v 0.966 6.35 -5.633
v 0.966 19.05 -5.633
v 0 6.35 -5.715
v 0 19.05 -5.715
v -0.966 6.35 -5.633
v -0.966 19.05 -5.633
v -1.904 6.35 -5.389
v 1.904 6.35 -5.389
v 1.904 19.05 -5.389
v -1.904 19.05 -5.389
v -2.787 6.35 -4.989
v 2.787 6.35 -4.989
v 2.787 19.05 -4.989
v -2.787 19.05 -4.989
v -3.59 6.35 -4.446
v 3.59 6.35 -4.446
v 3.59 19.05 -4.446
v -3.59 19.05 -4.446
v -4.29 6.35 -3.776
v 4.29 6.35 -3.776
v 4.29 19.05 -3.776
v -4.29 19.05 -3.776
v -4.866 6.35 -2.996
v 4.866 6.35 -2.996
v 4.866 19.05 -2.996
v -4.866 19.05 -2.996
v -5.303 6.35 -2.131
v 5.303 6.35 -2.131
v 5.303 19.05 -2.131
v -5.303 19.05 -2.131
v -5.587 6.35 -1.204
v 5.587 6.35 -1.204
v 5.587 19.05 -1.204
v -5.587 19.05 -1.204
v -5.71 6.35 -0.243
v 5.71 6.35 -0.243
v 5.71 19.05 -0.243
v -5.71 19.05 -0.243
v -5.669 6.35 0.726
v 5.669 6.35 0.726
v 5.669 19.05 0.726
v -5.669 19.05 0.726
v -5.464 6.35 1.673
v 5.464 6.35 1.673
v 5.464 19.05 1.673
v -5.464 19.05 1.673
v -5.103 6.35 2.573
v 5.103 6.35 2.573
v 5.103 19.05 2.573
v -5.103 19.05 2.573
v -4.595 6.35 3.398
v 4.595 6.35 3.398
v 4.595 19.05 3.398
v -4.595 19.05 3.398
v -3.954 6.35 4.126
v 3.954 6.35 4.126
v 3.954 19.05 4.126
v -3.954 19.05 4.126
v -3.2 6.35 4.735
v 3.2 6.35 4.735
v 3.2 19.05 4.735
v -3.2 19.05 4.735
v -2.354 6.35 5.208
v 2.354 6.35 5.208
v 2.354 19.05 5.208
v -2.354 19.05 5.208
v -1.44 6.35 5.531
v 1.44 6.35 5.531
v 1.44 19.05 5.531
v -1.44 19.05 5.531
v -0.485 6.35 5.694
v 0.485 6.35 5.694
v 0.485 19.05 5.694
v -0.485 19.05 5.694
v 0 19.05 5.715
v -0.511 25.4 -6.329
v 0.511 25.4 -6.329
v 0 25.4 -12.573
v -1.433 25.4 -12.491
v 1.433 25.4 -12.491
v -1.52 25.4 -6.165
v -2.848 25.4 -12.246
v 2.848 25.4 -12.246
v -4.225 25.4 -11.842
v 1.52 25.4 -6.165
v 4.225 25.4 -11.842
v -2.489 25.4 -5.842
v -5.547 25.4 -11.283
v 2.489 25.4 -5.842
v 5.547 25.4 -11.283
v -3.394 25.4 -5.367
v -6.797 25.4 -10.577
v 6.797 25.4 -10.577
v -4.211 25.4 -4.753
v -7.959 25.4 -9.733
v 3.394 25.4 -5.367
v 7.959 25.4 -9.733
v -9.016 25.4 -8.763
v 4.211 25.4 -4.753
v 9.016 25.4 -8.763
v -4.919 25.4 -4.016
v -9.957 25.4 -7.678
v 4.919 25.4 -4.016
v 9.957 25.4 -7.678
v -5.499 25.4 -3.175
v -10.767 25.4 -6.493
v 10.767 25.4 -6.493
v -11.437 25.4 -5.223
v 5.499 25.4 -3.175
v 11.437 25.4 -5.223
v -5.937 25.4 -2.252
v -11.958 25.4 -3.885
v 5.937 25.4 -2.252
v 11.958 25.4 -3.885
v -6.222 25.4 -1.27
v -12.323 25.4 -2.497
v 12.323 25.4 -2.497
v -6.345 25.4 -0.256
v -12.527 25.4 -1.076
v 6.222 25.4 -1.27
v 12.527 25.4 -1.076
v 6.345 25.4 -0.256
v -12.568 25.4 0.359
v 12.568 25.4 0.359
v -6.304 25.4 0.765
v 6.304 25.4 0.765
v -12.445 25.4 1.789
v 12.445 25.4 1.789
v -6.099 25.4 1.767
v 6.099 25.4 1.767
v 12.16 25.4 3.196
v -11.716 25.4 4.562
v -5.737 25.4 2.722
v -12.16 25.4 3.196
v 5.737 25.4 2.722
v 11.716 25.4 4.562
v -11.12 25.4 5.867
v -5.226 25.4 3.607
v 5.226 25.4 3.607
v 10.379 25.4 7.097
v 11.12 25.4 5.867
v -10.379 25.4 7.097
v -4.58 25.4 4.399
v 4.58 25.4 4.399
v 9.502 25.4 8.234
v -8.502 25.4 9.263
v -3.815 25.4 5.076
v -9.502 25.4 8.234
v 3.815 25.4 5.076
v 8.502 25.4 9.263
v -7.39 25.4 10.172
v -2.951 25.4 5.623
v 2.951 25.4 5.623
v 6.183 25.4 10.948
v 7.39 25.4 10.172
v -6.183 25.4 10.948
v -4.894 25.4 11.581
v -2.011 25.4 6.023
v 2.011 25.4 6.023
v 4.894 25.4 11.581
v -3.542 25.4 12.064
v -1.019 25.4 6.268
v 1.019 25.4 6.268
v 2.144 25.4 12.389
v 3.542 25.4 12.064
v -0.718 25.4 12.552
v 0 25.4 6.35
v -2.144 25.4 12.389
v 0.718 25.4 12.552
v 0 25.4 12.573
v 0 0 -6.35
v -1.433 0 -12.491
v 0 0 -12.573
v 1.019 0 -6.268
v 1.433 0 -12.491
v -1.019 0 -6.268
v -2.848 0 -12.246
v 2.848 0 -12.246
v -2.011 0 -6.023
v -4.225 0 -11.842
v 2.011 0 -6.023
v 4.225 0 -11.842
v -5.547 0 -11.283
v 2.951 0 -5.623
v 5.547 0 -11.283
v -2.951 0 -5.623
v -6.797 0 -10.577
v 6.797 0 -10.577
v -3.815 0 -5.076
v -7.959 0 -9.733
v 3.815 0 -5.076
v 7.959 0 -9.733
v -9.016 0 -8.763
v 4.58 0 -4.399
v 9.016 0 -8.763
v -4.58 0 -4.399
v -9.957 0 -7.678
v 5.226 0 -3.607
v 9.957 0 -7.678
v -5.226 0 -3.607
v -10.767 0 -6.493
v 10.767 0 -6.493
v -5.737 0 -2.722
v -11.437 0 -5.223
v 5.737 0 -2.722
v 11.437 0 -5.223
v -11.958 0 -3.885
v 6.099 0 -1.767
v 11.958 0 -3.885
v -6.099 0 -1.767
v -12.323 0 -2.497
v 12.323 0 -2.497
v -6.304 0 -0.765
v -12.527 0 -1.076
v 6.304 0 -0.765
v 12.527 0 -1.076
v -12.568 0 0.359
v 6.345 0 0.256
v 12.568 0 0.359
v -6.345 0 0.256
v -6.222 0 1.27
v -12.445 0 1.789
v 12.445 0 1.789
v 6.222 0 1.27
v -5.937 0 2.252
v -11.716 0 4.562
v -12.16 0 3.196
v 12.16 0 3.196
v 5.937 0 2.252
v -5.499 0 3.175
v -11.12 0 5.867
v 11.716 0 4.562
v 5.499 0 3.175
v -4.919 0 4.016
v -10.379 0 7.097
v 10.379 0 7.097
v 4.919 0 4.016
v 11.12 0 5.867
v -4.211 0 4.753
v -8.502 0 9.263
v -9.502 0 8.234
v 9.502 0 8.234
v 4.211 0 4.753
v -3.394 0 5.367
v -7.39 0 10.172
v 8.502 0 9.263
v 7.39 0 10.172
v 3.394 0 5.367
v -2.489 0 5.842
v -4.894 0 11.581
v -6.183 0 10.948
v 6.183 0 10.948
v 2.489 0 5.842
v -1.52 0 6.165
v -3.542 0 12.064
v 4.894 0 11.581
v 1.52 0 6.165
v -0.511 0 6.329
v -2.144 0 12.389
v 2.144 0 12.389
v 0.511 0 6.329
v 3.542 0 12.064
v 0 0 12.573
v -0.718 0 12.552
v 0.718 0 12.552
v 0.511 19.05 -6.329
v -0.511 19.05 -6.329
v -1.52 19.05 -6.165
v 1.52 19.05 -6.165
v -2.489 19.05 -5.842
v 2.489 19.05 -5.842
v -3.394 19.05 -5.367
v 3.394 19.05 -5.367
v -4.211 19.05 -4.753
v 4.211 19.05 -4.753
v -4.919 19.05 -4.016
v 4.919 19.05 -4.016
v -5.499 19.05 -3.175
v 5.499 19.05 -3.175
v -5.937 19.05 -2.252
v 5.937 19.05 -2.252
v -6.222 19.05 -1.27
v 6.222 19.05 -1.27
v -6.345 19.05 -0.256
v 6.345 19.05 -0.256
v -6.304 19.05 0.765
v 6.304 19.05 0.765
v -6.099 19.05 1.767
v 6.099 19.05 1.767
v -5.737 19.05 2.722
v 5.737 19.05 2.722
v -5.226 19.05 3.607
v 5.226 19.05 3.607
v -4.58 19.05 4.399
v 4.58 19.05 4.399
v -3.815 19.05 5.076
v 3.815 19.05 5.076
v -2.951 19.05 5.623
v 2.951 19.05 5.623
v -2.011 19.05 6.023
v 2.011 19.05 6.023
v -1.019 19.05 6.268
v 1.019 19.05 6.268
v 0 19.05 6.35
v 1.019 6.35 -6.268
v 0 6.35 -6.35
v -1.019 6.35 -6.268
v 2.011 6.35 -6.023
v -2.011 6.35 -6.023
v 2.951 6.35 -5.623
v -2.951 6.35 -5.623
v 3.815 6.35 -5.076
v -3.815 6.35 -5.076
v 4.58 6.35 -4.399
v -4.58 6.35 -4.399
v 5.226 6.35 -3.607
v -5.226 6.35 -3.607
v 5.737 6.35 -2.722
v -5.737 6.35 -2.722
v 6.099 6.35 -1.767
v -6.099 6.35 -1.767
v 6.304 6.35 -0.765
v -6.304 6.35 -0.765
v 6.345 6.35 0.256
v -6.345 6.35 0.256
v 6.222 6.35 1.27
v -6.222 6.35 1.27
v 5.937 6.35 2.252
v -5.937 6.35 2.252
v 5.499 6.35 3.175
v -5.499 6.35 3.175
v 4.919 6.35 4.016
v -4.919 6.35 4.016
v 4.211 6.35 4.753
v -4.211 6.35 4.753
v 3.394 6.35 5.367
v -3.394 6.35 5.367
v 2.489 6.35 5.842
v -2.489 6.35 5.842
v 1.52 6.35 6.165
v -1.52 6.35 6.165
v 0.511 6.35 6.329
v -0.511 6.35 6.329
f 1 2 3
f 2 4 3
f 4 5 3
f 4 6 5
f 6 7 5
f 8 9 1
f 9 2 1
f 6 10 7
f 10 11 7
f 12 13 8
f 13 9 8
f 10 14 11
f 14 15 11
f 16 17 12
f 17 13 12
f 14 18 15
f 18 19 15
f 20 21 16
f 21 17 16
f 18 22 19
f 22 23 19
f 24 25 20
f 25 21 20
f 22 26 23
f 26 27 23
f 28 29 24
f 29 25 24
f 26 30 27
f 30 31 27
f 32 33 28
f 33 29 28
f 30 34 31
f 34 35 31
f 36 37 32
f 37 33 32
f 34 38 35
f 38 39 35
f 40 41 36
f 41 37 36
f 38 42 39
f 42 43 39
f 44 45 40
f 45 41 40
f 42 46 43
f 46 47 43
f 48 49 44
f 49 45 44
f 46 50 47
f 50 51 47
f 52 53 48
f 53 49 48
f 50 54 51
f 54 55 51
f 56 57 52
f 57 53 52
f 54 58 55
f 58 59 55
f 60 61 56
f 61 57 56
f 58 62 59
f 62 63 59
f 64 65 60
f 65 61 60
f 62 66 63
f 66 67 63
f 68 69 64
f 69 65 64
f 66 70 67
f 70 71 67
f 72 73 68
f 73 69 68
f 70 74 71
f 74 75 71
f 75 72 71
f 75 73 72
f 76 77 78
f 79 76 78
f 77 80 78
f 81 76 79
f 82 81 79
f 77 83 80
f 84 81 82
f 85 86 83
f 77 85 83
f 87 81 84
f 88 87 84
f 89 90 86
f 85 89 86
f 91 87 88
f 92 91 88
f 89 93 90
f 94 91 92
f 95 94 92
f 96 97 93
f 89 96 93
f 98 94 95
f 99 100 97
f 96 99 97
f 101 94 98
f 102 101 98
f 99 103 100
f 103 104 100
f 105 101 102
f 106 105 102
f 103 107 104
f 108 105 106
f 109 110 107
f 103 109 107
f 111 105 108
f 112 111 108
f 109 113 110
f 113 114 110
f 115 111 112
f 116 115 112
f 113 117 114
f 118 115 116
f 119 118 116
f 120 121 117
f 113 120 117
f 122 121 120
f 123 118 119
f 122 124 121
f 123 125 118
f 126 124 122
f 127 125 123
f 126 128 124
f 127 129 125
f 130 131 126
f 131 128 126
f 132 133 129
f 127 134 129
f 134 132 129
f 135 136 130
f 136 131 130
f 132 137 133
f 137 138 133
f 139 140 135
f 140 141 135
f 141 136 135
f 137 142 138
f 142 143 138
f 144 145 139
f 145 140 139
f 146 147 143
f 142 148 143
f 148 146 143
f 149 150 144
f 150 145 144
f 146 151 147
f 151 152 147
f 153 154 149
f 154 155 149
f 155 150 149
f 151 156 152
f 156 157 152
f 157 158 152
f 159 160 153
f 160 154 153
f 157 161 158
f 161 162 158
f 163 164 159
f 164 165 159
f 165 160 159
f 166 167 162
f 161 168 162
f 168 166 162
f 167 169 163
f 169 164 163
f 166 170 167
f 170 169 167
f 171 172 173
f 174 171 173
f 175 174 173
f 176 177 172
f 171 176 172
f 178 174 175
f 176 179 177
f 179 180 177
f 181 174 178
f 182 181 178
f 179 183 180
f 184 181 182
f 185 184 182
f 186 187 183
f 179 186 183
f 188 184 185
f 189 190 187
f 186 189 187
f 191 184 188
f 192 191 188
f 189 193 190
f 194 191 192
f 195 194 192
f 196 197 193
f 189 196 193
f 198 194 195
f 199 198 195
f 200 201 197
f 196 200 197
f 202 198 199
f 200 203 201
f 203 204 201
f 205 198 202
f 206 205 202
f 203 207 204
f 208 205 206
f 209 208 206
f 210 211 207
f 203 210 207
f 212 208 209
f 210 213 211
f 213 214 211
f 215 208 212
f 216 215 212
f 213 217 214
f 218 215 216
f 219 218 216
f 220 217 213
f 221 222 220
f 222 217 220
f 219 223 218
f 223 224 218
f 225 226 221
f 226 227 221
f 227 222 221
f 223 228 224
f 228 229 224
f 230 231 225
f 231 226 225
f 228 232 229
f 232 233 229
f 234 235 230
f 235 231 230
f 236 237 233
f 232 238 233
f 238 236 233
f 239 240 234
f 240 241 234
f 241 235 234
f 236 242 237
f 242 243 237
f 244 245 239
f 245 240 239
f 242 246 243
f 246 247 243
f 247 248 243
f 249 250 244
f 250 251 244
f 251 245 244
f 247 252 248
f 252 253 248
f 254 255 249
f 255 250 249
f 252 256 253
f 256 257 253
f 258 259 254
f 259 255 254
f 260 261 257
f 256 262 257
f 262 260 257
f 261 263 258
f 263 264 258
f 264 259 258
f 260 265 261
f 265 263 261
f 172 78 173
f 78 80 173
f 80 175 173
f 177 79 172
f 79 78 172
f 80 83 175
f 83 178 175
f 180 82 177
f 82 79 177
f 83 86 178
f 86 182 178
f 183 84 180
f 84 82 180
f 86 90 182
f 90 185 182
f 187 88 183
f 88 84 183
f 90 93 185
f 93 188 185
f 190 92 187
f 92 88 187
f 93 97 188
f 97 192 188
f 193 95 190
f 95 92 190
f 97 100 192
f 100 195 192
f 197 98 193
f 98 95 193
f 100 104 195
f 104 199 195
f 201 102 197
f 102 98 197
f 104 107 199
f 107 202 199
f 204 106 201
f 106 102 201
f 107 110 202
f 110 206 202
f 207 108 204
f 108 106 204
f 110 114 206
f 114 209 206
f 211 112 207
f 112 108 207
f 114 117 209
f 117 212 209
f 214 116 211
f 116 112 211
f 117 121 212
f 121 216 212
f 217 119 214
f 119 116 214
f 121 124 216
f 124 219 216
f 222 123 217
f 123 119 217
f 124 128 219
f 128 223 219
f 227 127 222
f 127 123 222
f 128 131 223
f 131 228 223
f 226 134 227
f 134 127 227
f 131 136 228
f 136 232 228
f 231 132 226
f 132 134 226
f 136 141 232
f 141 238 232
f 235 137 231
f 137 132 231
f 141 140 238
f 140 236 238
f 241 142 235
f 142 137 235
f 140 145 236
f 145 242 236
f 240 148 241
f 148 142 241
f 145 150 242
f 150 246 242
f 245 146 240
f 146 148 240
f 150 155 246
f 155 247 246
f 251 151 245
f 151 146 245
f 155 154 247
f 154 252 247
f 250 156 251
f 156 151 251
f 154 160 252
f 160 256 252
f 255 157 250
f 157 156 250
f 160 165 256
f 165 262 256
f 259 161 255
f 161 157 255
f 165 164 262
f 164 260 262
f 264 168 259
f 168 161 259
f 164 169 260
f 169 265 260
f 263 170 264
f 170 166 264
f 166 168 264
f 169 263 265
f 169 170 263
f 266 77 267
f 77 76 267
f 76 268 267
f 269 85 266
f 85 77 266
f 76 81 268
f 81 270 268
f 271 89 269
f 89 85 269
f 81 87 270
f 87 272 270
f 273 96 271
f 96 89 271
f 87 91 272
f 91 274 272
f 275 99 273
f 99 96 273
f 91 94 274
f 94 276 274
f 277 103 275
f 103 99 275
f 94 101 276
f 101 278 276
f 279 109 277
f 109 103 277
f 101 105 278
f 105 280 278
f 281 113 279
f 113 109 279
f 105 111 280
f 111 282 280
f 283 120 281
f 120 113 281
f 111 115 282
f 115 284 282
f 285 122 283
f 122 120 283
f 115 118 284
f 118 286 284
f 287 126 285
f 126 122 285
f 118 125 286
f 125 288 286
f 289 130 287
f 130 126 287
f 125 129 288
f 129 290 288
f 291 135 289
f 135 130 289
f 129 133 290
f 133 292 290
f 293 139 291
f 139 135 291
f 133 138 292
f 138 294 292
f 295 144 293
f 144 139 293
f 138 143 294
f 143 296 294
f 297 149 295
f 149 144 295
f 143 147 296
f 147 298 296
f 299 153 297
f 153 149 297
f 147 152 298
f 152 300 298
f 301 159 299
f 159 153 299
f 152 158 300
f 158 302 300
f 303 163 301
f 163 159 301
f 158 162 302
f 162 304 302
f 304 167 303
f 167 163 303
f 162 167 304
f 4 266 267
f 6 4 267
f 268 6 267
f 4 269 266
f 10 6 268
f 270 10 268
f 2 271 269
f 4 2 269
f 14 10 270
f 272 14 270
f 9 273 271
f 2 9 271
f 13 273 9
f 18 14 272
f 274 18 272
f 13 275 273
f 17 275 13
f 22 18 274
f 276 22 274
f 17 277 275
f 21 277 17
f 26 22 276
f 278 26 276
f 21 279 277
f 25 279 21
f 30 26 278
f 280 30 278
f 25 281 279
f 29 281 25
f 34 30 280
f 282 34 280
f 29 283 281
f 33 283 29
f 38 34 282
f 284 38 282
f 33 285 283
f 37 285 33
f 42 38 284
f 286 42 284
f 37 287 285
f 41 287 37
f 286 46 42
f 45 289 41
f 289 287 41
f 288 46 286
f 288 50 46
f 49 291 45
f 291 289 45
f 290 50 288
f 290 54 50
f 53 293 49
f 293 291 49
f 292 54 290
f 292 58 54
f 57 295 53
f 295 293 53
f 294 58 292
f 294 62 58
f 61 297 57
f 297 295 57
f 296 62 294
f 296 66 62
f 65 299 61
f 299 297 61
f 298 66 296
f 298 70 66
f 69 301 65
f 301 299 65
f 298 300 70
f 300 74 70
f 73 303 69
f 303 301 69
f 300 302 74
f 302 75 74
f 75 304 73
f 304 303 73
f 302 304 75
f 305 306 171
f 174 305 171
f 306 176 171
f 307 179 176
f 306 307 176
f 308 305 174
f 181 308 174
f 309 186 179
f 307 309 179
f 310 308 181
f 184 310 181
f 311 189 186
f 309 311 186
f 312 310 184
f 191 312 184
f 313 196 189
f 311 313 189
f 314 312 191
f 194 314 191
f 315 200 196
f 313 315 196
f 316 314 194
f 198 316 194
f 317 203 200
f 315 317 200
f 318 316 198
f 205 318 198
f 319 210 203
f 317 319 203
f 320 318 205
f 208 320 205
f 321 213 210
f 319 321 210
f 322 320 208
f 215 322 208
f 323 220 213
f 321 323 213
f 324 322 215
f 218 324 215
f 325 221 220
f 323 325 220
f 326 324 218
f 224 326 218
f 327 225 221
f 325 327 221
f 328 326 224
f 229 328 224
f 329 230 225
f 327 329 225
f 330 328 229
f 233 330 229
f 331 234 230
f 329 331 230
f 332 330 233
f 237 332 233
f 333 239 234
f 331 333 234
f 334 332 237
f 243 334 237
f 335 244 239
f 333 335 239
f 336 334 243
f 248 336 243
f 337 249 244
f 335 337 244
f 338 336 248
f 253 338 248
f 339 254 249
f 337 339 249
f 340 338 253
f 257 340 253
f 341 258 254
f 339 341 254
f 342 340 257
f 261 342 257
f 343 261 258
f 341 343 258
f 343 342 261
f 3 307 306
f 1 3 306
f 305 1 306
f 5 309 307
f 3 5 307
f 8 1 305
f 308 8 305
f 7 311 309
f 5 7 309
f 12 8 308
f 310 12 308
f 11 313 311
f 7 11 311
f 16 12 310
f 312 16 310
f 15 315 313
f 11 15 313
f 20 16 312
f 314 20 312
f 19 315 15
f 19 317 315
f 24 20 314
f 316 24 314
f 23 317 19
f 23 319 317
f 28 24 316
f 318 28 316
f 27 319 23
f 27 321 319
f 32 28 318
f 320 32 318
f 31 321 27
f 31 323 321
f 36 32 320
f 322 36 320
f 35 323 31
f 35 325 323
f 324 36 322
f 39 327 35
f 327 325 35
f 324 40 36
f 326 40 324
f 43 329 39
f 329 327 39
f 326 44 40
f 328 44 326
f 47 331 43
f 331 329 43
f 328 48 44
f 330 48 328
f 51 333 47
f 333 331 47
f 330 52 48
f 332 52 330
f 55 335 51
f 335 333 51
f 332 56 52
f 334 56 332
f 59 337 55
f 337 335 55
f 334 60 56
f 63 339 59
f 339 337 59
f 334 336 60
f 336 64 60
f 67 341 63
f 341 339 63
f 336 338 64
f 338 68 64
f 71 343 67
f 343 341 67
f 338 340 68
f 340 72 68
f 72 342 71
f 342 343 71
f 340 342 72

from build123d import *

# Parameters (mm, degrees)
SKETCH1_R           = 12.573
SKETCH1_R_2         = 5.715
BOSS_EXTRUDE1_DEPTH = 25.4
CUT_EXTRUDE2_START  = -6.35
SKETCH3_R           = 6.35
SKETCH3_R_2         = 5.715
CUT_EXTRUDE2_DEPTH  = 6.35
SKETCH4_R           = 6.35
SKETCH4_R_2         = 5.715
CUT_EXTRUDE3_DEPTH  = 6.35


with BuildPart() as part:
    # Sketch1 → Boss-Extrude1 (new body)
    with BuildSketch(Plane(origin=(0, 0, 0), x_dir=(1, 0, 0), z_dir=(0, 1, 0))):
        with Locations(Location((0, 0, 0), (0, 0, 270))):
            Circle(SKETCH1_R)
        with Locations(Location((0, 0, 0), (0, 0, 270))):
            Circle(SKETCH1_R_2, mode=Mode.SUBTRACT)
    extrude(amount=BOSS_EXTRUDE1_DEPTH)

    # Sketch3 → Cut-Extrude2 (cut)
    with BuildSketch(Plane(origin=(0, 25.4, 0), x_dir=(1, 0, 0), z_dir=(0, 1, 0)).offset(CUT_EXTRUDE2_START)):
        with Locations(Location((0, 0, 0), (0, 0, 270))):
            Circle(SKETCH3_R)
        with Locations(Location((0, 0, 0), (0, 0, 270))):
            Circle(SKETCH3_R_2, mode=Mode.SUBTRACT)
    extrude(amount=CUT_EXTRUDE2_DEPTH, mode=Mode.SUBTRACT)

    # Sketch4 → Cut-Extrude3 (cut)
    with BuildSketch(Plane.XZ):
        with Locations(Location((0, 0, 0), (0, 0, 90))):
            Circle(SKETCH4_R)
        with Locations(Location((0, 0, 0), (0, 0, 270))):
            Circle(SKETCH4_R_2, mode=Mode.SUBTRACT)
    extrude(amount=-CUT_EXTRUDE3_DEPTH, mode=Mode.SUBTRACT)


solid = part.part
